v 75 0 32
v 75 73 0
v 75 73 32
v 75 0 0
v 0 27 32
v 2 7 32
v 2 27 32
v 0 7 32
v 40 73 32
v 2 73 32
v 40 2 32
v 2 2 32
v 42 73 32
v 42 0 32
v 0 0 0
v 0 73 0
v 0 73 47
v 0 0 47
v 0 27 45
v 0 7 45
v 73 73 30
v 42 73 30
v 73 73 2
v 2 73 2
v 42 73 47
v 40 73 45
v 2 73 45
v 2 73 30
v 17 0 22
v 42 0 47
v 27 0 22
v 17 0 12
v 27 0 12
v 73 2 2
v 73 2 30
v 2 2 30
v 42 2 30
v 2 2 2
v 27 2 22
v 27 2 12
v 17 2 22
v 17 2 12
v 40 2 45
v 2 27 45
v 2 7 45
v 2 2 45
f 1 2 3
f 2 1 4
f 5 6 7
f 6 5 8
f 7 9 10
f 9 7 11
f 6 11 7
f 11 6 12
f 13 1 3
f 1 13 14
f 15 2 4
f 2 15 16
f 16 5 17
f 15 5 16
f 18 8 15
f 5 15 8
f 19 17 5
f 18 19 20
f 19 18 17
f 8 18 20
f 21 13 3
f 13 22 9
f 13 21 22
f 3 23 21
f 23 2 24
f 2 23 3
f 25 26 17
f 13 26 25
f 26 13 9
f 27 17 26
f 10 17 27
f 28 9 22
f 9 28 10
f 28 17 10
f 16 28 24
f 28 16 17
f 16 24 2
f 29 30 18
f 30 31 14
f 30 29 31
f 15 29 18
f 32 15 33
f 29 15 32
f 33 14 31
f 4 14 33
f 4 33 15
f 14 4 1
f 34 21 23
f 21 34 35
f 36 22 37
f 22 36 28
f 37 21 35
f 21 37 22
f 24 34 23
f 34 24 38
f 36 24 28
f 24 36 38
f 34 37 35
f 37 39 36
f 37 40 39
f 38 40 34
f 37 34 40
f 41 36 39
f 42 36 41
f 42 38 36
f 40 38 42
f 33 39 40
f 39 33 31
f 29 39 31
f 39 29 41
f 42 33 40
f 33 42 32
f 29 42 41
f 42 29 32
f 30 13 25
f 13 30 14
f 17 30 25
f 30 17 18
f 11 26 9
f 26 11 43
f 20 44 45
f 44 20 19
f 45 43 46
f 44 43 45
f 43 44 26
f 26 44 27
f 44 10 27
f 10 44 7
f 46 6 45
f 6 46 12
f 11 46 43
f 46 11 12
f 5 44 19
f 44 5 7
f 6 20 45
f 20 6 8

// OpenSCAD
wand = [2, 2, 2];

sds011 = [71, 71, 28];
sds011_anluft = [10, wand.y, 10];
sds011_anluft_offset = [wand.x + 15, 0, wand.z + 10];

esp8266 = [38, 71, 13];
esp8266_usb = [wand.x, 20, 13];
esp8266_usb_offset = [0, wand.y + 5, wand.z];

difference() {
    cube(sds011 + wand + [wand.x, 0, wand.z]);
    translate(wand) cube(sds011);
    translate(sds011_anluft_offset) cube(sds011_anluft);
}

translate([0, 0, wand.z + sds011.z]) difference() {
    cube(esp8266 + wand + [wand.x, 0, wand.z]);
    translate(wand) cube(esp8266);
    translate(esp8266_usb_offset) cube(esp8266_usb);
}
